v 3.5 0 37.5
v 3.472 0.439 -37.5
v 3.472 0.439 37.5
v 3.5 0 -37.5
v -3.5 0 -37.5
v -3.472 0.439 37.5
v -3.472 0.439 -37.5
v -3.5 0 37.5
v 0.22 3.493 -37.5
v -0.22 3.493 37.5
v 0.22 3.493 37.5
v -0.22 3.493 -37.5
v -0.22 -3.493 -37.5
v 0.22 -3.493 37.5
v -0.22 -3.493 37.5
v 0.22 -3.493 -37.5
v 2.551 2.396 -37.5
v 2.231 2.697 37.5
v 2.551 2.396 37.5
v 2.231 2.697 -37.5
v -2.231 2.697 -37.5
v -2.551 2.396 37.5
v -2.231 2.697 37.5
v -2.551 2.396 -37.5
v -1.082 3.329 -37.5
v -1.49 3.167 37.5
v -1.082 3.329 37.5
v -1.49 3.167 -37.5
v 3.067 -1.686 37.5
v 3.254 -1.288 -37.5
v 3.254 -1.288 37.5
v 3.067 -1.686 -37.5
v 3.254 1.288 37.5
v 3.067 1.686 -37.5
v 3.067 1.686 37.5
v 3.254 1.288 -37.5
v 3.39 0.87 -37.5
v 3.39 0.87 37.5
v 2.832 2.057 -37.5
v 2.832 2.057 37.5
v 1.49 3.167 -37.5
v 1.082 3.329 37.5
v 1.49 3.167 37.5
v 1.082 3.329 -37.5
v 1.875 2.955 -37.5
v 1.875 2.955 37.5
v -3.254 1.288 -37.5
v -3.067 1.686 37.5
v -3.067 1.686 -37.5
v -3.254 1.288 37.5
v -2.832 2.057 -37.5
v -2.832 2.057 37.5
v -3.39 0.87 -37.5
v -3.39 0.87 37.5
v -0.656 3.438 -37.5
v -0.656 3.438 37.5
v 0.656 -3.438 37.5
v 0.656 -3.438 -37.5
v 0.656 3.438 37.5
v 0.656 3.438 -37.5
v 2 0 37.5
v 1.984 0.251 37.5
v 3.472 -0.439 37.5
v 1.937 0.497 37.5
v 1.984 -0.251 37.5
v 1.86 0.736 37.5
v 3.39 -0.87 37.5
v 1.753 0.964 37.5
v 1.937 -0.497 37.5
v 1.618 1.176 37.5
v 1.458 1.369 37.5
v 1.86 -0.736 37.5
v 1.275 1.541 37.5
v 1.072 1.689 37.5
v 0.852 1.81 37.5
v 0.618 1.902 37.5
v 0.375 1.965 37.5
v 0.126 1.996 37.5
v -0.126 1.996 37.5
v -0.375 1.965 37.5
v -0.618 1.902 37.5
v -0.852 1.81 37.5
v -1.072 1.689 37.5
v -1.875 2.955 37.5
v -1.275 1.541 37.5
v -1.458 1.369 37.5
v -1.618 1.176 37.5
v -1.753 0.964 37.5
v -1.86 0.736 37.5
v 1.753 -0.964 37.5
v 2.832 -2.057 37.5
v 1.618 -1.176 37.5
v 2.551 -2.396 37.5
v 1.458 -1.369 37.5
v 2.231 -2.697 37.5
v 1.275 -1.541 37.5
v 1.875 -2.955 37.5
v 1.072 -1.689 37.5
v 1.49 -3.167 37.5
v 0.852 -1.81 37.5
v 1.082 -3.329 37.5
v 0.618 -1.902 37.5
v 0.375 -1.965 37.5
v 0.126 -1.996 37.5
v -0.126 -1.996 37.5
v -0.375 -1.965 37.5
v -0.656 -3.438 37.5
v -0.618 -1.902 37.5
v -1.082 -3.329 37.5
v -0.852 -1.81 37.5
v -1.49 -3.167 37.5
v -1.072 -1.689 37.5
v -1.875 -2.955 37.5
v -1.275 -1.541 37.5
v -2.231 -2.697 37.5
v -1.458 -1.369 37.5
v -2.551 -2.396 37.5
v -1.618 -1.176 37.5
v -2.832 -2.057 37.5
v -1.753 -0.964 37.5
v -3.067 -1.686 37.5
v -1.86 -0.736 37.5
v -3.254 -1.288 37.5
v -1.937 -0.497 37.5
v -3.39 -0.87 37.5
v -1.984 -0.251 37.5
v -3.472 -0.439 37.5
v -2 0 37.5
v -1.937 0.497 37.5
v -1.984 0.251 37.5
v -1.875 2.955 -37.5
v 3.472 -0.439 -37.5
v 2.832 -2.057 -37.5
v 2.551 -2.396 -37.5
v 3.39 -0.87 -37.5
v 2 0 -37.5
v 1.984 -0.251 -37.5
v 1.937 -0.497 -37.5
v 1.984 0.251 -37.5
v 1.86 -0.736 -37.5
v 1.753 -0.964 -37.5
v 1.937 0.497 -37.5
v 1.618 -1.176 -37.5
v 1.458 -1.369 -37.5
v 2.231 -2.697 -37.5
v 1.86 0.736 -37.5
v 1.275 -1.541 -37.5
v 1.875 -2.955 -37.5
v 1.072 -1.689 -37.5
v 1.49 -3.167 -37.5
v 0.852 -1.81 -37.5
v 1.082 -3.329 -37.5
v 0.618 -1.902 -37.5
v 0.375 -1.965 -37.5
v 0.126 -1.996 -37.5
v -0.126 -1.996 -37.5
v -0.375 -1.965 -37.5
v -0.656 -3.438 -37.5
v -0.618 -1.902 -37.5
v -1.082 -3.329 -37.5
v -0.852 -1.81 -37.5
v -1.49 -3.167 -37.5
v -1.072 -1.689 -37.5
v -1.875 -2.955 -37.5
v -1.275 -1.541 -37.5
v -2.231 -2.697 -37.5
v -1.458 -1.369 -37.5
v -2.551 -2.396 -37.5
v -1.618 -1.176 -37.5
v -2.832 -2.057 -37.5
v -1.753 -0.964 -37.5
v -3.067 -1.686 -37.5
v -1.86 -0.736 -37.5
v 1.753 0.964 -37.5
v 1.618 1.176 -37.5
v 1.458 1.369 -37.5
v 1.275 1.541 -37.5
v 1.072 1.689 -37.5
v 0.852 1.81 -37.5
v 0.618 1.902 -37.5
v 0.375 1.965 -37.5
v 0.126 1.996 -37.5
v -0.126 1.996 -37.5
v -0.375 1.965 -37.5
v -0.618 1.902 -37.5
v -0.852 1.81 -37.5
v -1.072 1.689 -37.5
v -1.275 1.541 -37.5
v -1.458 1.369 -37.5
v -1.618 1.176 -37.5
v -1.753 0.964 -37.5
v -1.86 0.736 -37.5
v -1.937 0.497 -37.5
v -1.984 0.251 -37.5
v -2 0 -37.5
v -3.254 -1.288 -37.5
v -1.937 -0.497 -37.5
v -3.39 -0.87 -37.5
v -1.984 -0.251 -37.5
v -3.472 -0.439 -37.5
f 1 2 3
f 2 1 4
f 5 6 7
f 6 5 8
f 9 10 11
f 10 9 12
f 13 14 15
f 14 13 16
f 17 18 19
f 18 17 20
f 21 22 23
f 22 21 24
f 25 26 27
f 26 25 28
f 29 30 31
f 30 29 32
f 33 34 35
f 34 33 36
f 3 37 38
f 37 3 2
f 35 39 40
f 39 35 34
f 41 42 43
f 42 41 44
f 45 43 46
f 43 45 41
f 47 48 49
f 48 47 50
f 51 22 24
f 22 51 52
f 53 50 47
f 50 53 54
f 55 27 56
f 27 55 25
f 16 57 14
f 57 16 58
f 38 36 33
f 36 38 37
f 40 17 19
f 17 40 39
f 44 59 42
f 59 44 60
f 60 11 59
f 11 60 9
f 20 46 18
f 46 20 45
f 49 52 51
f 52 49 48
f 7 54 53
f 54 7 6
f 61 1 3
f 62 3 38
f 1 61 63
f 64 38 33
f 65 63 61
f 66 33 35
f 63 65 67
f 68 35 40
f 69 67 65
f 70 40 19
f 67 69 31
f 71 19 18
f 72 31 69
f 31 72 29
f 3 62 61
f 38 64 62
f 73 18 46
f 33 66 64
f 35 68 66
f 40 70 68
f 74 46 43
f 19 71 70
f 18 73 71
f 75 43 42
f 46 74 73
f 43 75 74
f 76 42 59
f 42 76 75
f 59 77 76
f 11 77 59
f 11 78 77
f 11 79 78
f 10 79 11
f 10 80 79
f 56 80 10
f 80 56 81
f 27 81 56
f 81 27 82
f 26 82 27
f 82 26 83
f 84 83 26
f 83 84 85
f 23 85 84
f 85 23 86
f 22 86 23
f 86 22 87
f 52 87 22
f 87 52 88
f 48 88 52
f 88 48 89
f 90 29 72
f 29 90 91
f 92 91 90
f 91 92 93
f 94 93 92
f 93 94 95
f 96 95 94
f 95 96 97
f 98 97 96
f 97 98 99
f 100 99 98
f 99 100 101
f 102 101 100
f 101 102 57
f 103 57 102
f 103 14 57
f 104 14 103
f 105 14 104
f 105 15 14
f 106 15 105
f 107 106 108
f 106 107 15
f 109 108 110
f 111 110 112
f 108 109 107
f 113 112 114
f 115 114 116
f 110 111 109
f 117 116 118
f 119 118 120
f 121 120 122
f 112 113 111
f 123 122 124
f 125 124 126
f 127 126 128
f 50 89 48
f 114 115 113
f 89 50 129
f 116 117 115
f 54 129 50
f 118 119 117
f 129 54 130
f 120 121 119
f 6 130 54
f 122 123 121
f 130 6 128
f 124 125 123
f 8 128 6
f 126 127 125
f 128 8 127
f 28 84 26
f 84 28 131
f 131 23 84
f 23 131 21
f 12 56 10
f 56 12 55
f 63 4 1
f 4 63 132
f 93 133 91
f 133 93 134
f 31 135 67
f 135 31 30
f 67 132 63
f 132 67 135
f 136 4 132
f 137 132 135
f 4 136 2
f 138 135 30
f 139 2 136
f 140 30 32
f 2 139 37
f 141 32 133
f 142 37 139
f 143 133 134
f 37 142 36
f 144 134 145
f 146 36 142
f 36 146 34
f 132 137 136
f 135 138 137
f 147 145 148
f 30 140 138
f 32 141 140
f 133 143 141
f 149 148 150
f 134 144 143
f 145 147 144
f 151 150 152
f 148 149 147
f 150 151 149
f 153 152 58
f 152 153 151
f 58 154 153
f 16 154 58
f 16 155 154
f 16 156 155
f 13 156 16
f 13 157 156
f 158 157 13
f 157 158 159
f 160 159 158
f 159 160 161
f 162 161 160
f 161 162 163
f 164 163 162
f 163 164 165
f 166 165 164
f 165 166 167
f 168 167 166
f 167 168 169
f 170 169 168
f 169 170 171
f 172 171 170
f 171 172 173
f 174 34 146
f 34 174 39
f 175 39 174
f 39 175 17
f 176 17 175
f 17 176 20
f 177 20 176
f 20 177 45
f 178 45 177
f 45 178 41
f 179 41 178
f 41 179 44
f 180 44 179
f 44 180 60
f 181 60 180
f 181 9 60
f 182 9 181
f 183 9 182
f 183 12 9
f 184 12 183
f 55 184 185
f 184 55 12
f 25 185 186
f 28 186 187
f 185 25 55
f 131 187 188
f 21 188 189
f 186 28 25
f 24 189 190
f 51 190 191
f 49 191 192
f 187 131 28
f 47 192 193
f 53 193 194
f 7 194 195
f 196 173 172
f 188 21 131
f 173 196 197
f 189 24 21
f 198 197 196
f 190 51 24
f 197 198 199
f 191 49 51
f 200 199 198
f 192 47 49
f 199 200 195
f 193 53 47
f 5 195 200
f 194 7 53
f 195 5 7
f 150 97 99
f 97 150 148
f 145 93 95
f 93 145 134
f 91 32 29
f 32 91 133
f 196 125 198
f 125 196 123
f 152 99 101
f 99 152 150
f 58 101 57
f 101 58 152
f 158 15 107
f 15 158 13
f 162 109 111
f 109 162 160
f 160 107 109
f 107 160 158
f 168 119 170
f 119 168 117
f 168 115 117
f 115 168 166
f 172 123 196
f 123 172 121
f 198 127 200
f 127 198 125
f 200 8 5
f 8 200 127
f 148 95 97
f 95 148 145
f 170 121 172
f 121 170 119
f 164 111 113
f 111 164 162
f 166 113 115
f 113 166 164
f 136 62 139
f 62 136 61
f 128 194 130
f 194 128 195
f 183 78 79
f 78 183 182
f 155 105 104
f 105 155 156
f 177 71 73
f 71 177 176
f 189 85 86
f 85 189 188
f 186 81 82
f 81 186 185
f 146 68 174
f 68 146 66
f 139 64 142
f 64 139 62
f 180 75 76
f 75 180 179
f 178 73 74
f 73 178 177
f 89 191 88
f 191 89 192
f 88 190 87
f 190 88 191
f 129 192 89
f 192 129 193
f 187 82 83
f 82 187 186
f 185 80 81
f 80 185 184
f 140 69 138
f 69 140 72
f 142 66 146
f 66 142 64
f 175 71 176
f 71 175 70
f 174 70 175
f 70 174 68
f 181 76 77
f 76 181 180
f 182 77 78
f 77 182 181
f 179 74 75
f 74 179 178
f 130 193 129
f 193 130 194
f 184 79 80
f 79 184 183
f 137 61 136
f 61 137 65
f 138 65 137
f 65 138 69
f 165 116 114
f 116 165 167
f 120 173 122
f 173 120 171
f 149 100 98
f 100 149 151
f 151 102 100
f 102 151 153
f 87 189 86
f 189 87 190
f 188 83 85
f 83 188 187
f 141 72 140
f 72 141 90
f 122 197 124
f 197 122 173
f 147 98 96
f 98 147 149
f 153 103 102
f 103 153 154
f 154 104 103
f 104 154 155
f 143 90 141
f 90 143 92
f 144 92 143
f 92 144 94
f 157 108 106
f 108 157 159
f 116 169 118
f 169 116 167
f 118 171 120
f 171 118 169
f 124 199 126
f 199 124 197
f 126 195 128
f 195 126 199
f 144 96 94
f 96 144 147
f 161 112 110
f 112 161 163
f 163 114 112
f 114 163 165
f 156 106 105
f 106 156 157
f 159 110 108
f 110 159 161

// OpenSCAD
$fn = 50;


difference() {
	union() {
		translate(v = [0, 0, -37.5000000000]) {
			cylinder(h = 75, r = 3.5000000000);
		}
	}
	union() {
		translate(v = [0, 0, -100.0000000000]) {
			cylinder(h = 200, r = 2.0000000000);
		}
	}
}
